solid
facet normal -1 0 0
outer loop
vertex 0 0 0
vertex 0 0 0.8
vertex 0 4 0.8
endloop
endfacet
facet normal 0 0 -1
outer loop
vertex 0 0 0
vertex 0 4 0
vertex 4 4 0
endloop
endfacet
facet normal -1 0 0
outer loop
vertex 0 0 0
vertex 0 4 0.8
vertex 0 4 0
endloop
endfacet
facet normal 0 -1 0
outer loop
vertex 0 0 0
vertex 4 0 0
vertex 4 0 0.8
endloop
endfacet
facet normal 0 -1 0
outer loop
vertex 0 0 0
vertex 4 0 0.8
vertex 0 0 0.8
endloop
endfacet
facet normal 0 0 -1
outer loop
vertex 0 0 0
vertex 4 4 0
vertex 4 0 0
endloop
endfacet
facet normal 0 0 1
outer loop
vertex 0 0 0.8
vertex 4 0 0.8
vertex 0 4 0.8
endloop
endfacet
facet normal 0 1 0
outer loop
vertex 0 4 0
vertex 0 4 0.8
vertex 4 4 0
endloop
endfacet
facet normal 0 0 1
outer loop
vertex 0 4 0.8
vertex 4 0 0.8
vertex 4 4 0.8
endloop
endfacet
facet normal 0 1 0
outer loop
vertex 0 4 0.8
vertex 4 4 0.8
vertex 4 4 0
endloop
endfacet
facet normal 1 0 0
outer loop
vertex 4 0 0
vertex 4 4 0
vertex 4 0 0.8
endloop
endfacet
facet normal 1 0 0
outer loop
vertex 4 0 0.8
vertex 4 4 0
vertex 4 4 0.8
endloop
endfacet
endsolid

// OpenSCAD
/* Warning, this is a very basic generator with a lot of approximation 
input data : [WDFN, USX, 4x4x0.8mm, 10, , A, C04-00293A]
generated by com.zoubworld.electronics.cad.model3d.Basic
Date : Sun Feb 15 10:50:48 CET 2026
*/

//body
color("black")
translate([0,0,0])
cube([4.0,4.0,0.8], center=false);
